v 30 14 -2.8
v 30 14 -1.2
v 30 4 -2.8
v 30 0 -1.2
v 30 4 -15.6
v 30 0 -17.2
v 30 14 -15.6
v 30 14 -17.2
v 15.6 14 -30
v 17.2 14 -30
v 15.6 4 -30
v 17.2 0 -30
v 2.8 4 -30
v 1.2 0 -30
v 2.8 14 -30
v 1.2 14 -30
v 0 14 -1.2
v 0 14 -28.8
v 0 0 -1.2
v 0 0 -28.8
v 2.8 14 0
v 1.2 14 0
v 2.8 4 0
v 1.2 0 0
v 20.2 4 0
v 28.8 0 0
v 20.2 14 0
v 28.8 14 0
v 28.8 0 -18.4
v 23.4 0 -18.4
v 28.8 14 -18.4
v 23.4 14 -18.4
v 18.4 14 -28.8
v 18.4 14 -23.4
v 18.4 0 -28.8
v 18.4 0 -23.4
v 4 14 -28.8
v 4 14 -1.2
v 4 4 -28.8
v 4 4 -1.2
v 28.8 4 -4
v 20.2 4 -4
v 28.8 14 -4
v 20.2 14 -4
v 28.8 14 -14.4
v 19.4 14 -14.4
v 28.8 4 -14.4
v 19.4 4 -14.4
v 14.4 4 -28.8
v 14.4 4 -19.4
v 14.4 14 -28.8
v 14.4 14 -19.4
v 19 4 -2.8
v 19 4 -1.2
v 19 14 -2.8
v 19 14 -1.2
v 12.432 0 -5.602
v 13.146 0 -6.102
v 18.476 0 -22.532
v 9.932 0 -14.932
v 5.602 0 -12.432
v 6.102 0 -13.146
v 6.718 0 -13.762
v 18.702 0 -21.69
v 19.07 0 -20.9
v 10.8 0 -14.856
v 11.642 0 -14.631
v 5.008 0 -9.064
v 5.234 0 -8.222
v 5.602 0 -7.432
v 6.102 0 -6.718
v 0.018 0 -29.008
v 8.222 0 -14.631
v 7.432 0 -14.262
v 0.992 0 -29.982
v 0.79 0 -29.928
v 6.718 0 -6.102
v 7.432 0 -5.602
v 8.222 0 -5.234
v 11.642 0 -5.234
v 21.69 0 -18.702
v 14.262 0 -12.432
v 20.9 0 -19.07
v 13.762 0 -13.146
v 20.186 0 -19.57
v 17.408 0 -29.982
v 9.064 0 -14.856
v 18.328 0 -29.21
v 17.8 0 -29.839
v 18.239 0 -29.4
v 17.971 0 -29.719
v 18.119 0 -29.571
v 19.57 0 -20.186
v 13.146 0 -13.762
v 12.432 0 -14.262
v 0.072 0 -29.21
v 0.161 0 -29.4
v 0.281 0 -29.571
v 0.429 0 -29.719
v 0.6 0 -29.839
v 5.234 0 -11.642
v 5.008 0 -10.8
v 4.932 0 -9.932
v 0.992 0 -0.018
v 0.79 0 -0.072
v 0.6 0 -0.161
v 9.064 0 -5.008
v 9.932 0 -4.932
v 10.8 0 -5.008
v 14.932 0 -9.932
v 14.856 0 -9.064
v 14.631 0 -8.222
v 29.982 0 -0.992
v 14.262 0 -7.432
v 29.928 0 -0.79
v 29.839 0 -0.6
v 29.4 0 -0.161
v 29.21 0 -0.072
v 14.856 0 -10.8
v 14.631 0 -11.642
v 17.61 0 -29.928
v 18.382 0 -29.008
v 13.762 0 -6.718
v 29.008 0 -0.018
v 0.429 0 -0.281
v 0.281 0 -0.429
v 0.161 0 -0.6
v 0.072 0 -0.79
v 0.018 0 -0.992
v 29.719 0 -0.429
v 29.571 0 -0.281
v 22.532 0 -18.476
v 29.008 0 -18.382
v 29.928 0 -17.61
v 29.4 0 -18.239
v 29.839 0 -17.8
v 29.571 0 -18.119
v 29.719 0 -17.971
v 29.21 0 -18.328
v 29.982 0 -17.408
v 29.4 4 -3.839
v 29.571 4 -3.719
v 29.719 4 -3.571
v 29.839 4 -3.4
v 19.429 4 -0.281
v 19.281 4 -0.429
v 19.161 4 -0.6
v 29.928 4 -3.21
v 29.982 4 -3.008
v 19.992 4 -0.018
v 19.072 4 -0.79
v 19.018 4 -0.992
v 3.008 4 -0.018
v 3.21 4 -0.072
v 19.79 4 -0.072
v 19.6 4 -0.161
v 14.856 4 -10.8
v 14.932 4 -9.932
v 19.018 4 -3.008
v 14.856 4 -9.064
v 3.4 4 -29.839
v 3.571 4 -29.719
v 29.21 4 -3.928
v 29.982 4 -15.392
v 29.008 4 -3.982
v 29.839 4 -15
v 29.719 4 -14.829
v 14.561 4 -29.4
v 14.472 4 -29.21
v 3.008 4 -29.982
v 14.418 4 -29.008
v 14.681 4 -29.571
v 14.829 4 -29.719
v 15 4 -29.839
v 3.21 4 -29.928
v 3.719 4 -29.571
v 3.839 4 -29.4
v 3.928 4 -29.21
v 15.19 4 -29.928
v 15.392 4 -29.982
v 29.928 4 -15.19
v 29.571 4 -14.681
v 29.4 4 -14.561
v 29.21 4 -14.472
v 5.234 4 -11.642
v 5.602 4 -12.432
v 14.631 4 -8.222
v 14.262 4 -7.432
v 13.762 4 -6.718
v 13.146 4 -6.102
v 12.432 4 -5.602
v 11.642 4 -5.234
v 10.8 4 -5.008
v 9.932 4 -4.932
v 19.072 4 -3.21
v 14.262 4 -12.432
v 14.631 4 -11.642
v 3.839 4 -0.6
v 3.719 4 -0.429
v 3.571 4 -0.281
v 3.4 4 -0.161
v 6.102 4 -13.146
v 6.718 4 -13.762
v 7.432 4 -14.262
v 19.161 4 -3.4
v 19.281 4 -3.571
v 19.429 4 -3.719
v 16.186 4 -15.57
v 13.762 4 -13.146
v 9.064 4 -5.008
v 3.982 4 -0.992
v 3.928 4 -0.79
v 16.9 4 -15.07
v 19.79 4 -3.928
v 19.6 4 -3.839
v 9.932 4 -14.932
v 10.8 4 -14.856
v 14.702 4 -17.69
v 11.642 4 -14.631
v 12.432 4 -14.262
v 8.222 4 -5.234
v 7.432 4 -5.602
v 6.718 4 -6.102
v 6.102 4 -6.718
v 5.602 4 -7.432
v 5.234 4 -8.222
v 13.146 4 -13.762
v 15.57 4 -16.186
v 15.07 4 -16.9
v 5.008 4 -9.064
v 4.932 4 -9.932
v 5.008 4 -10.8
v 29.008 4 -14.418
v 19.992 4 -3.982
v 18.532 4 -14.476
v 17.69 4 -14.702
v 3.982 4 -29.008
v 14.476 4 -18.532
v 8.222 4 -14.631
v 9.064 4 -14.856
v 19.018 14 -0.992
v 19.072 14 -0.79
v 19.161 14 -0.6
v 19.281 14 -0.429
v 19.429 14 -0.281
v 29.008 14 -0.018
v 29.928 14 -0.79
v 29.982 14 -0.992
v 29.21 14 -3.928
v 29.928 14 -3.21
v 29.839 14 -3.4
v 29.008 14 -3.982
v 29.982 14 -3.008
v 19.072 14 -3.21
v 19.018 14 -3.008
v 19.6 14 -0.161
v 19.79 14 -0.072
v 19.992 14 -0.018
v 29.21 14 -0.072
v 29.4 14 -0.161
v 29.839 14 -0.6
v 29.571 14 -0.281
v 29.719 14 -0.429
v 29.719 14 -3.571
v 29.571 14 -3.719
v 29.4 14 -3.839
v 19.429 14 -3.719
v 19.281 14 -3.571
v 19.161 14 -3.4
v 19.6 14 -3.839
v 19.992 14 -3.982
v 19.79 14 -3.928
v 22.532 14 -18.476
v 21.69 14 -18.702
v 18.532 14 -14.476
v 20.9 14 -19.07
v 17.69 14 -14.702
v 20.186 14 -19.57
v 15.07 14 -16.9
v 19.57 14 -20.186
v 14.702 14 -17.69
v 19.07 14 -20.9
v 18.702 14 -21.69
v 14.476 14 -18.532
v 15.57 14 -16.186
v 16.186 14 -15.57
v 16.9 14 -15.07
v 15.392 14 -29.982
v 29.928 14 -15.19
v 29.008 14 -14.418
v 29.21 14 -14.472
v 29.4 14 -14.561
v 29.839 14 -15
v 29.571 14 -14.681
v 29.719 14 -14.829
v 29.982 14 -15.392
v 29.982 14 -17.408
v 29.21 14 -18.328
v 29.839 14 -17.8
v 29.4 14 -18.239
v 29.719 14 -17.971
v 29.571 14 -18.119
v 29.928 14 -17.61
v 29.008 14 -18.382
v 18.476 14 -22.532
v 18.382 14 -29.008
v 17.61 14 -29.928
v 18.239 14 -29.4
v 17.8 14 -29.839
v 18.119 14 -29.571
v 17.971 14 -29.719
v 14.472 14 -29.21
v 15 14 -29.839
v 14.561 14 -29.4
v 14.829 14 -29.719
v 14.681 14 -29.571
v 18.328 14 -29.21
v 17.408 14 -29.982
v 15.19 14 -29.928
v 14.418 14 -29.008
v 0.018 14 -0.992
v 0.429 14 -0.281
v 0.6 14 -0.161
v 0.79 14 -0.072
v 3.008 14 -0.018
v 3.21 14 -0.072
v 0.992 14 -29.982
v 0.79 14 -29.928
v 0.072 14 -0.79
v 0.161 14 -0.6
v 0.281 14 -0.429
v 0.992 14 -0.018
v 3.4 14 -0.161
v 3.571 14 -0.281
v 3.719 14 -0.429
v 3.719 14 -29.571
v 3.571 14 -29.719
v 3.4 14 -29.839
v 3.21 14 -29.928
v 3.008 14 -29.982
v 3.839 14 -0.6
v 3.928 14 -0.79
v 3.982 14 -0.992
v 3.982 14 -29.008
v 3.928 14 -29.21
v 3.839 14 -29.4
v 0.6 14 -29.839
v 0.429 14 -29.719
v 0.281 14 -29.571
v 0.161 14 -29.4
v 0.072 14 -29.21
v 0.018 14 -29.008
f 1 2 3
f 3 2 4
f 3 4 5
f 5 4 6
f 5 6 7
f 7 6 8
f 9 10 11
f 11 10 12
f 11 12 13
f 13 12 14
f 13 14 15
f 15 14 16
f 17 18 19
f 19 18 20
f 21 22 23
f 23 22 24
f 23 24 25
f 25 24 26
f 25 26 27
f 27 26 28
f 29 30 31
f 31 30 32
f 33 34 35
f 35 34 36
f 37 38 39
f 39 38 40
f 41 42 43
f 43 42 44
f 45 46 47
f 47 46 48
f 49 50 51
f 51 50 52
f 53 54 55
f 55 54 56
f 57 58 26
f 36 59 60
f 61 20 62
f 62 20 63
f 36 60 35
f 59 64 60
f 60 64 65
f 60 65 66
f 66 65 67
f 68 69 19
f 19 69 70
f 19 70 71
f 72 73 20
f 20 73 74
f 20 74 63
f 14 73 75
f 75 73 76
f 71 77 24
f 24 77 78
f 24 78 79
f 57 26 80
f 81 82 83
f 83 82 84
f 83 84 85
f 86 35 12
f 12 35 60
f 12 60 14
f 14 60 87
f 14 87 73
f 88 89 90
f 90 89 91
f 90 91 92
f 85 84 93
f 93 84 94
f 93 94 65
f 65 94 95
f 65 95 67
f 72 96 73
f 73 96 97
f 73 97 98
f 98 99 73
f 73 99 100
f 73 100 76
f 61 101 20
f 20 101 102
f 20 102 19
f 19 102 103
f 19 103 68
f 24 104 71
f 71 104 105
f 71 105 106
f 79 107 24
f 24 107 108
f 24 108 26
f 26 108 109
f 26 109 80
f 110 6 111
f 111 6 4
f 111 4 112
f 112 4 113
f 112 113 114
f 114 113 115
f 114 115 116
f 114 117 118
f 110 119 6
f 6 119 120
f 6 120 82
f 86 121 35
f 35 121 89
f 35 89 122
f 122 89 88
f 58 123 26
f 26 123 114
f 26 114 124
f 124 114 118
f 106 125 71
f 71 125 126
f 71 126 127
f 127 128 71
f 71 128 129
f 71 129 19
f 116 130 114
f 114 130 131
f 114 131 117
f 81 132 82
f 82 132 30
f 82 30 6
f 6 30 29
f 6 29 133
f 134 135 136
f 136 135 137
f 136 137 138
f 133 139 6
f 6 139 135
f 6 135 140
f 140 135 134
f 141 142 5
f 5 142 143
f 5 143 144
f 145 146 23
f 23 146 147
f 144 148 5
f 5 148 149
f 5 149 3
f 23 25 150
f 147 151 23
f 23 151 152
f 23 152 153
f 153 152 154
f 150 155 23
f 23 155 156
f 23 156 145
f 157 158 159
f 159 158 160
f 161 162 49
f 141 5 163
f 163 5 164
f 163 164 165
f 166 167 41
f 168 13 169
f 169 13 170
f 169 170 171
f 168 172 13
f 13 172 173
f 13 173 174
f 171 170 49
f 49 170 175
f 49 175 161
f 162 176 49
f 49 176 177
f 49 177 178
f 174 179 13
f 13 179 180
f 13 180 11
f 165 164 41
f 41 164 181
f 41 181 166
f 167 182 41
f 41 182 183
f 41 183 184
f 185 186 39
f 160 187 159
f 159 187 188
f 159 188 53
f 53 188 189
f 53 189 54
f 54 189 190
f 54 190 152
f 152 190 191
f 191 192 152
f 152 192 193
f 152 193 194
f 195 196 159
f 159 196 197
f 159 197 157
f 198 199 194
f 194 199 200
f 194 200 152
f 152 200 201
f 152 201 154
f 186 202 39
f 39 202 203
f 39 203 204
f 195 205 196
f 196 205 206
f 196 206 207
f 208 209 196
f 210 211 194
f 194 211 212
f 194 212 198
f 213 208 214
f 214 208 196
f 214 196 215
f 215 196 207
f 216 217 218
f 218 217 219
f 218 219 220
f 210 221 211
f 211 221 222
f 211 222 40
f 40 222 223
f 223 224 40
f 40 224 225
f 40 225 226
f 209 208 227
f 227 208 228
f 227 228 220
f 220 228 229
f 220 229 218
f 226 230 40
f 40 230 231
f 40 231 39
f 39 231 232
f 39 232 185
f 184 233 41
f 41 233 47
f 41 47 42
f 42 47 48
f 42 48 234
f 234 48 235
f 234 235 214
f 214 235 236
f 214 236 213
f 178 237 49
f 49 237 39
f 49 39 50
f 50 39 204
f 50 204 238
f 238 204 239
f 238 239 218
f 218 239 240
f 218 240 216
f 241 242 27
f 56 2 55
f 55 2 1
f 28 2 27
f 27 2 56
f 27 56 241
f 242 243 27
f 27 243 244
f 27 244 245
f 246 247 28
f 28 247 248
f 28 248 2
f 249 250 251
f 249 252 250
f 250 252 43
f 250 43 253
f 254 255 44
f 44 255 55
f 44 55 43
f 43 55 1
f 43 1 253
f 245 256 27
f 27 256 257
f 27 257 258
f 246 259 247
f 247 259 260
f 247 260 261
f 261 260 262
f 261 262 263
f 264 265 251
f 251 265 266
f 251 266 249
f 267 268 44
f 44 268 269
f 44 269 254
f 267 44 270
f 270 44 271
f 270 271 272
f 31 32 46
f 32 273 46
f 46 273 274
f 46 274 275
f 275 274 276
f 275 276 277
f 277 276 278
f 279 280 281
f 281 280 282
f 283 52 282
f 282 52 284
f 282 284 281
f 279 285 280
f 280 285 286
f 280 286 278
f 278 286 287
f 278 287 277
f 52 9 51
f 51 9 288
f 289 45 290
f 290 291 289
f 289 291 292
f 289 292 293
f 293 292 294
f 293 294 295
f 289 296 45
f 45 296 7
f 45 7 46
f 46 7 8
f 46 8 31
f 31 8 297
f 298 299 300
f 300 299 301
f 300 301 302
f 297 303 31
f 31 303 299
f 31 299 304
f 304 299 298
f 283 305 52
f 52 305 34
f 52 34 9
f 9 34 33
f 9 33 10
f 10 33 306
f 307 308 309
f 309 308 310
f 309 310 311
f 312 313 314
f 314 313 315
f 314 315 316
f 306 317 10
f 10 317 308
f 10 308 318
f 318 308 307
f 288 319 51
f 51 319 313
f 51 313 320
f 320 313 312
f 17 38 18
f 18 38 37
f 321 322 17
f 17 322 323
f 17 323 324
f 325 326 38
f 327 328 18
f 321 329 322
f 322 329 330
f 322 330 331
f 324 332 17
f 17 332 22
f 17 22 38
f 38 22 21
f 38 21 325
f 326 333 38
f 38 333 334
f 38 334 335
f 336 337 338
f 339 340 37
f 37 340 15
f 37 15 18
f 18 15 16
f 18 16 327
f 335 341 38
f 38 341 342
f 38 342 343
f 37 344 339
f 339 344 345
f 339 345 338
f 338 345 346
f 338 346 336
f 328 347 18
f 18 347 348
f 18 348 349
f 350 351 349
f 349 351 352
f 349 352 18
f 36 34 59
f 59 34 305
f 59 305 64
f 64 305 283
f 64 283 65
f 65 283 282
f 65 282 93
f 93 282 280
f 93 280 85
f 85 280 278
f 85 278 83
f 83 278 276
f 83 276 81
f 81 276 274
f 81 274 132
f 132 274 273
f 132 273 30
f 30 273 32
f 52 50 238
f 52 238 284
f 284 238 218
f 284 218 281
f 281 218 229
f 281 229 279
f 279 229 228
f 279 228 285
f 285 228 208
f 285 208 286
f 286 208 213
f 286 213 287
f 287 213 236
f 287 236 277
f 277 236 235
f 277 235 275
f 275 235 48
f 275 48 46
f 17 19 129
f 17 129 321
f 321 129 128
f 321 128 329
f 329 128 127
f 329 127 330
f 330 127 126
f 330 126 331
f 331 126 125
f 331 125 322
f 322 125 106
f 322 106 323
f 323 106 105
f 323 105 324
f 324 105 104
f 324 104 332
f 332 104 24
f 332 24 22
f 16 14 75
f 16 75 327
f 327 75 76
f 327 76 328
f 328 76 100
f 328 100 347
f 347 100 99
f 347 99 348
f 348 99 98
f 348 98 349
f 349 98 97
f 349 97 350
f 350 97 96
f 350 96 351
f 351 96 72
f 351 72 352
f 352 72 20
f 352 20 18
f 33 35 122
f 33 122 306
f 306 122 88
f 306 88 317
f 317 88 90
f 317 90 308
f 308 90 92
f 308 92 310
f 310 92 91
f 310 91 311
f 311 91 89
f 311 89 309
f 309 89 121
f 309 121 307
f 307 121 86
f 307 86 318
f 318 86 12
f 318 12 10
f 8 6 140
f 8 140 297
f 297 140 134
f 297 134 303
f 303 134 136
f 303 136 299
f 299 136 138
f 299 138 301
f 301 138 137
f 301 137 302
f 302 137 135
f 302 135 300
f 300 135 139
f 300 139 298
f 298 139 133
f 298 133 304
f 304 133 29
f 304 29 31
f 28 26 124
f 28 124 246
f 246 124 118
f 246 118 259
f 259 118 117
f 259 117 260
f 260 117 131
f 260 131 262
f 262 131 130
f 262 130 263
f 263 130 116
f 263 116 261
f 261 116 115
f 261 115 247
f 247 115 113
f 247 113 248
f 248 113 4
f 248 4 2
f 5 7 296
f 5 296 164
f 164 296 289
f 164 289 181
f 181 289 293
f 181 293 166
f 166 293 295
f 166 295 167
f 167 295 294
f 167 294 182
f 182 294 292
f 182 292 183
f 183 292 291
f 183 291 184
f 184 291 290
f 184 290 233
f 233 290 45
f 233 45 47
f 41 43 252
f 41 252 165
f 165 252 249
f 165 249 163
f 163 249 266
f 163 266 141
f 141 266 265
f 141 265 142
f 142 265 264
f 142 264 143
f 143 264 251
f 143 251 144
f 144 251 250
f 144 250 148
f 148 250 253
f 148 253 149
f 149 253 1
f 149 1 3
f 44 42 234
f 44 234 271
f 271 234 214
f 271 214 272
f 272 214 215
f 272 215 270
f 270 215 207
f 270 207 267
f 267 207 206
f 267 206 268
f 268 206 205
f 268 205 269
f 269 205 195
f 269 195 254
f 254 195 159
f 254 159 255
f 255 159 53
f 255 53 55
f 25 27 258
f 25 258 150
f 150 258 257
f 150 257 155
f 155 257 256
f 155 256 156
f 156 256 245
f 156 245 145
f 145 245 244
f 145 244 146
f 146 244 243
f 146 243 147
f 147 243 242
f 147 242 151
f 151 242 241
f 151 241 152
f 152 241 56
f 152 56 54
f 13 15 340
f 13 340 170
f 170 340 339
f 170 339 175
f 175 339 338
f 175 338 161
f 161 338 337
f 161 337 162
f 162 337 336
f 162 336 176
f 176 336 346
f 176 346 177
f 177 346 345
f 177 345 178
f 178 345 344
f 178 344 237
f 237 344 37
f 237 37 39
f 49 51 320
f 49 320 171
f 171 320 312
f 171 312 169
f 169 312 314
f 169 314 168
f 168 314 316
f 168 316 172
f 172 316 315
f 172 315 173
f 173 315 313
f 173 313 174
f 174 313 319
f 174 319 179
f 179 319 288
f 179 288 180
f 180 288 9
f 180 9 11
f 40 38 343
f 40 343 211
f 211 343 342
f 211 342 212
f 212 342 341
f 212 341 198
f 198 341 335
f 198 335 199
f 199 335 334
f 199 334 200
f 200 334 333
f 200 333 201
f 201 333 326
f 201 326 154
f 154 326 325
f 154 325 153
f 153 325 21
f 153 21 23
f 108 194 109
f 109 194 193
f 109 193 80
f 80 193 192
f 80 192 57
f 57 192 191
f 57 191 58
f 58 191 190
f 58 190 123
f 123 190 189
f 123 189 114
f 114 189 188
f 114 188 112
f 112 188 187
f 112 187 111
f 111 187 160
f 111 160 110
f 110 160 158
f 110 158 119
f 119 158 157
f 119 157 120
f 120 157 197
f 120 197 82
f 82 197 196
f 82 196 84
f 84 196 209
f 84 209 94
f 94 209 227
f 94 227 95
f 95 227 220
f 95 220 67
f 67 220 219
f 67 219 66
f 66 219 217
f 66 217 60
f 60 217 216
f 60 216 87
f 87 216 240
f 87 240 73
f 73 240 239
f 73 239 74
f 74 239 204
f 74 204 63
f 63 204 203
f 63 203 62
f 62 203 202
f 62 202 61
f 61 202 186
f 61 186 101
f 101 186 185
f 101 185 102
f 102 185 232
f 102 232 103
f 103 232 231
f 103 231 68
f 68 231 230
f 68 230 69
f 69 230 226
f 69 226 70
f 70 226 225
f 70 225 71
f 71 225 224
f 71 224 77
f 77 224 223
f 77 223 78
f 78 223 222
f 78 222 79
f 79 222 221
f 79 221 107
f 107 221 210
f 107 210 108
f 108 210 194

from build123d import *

# Parameters (mm, degrees)
BOSS_EXTRUDE1_DEPTH = 30.9
SHELL1_T            = -4
CUT_EXTRUDE1_REACH  = 54.486
SKETCH2_W           = 15
SKETCH2_H           = 22.9
CUT_EXTRUDE2_DEPTH  = 16.9
FILLET1_R           = 5
FILLET2_R           = 1.2
SKETCH4_R           = 5
CUT_EXTRUDE5_DEPTH  = 44.588989435


with BuildPart() as part:
    # Sketch1 → Boss-Extrude1 (new body)
    with BuildSketch(Plane(origin=(0, 0, 0), x_dir=(1, 0, 0), z_dir=(0, 1, 0))):
        Polygon((0, 0), (30, 0), (30, 18.4), (18.4, 18.4), (18.4, 30), (0, 30), align=None)
    extrude(amount=BOSS_EXTRUDE1_DEPTH)

    # Shell1
    shell1_openings = [part.faces().sort_by_distance(p)[0] for p in [
        (9.2, 15.45, -30),
        (30, 15.45, -9.2),
    ]]
    offset(amount=SHELL1_T, openings=shell1_openings, kind=Kind.INTERSECTION)

    # Sketch2 → Cut-Extrude1 (cut, up to next)
    with BuildSketch(Plane.XY, mode=Mode.PRIVATE) as cut_extrude1_sk1:
        with Locations((11.5, 15.45)):
            Rectangle(SKETCH2_W, SKETCH2_H)
    cut_extrude1_tool1 = extrude(cut_extrude1_sk1.sketch, amount=-CUT_EXTRUDE1_REACH, mode=Mode.PRIVATE) & part.part
    add(cut_extrude1_tool1.solids().sort_by_distance((11.5, 15.45, 0))[0], mode=Mode.SUBTRACT)

    # Sketch3 → Cut-Extrude2 (cut)
    with BuildSketch(Plane(origin=(0, 30.9, 0), x_dir=(1, 0, 0), z_dir=(0, 1, 0))):
        Polygon((0, 30), (0, 0), (30, 0), (30, 18.4), (18.4, 18.4), (18.4, 30), align=None)
    extrude(amount=-CUT_EXTRUDE2_DEPTH, mode=Mode.SUBTRACT)

    # Fillet1
    fillet1_edges = [part.edges().sort_by_distance(p)[0] for p in [
        (14.4, 9, -14.4),
        (18.4, 7, -18.4),
    ]]
    fillet(fillet1_edges, radius=FILLET1_R)

    # Fillet2
    fillet2_edges = [part.edges().sort_by_distance(p)[0] for p in [
        (19, 9, -4),
        (19, 9, 0),
        (14.4, 9, -30),
        (30, 9, -14.4),
        (30, 9, -4),
        (4, 9, -30),
        (4, 9, 0),
        (18.4, 7, -30),
        (30, 7, -18.4),
        (30, 7, 0),
        (0, 7, 0),
        (0, 7, -30),
    ]]
    fillet(fillet2_edges, radius=FILLET2_R)

    # Sketch4 → Cut-Extrude5 (cut, through all)
    with BuildSketch(Plane(origin=(0, 4, 0), x_dir=(1, 0, 0), z_dir=(0, 1, 0))):
        with Locations(Location((9.932233047, 9.932233047, 0), (0, 0, 270))):
            Circle(SKETCH4_R)
    extrude(amount=-CUT_EXTRUDE5_DEPTH, mode=Mode.SUBTRACT)


solid = part.part
